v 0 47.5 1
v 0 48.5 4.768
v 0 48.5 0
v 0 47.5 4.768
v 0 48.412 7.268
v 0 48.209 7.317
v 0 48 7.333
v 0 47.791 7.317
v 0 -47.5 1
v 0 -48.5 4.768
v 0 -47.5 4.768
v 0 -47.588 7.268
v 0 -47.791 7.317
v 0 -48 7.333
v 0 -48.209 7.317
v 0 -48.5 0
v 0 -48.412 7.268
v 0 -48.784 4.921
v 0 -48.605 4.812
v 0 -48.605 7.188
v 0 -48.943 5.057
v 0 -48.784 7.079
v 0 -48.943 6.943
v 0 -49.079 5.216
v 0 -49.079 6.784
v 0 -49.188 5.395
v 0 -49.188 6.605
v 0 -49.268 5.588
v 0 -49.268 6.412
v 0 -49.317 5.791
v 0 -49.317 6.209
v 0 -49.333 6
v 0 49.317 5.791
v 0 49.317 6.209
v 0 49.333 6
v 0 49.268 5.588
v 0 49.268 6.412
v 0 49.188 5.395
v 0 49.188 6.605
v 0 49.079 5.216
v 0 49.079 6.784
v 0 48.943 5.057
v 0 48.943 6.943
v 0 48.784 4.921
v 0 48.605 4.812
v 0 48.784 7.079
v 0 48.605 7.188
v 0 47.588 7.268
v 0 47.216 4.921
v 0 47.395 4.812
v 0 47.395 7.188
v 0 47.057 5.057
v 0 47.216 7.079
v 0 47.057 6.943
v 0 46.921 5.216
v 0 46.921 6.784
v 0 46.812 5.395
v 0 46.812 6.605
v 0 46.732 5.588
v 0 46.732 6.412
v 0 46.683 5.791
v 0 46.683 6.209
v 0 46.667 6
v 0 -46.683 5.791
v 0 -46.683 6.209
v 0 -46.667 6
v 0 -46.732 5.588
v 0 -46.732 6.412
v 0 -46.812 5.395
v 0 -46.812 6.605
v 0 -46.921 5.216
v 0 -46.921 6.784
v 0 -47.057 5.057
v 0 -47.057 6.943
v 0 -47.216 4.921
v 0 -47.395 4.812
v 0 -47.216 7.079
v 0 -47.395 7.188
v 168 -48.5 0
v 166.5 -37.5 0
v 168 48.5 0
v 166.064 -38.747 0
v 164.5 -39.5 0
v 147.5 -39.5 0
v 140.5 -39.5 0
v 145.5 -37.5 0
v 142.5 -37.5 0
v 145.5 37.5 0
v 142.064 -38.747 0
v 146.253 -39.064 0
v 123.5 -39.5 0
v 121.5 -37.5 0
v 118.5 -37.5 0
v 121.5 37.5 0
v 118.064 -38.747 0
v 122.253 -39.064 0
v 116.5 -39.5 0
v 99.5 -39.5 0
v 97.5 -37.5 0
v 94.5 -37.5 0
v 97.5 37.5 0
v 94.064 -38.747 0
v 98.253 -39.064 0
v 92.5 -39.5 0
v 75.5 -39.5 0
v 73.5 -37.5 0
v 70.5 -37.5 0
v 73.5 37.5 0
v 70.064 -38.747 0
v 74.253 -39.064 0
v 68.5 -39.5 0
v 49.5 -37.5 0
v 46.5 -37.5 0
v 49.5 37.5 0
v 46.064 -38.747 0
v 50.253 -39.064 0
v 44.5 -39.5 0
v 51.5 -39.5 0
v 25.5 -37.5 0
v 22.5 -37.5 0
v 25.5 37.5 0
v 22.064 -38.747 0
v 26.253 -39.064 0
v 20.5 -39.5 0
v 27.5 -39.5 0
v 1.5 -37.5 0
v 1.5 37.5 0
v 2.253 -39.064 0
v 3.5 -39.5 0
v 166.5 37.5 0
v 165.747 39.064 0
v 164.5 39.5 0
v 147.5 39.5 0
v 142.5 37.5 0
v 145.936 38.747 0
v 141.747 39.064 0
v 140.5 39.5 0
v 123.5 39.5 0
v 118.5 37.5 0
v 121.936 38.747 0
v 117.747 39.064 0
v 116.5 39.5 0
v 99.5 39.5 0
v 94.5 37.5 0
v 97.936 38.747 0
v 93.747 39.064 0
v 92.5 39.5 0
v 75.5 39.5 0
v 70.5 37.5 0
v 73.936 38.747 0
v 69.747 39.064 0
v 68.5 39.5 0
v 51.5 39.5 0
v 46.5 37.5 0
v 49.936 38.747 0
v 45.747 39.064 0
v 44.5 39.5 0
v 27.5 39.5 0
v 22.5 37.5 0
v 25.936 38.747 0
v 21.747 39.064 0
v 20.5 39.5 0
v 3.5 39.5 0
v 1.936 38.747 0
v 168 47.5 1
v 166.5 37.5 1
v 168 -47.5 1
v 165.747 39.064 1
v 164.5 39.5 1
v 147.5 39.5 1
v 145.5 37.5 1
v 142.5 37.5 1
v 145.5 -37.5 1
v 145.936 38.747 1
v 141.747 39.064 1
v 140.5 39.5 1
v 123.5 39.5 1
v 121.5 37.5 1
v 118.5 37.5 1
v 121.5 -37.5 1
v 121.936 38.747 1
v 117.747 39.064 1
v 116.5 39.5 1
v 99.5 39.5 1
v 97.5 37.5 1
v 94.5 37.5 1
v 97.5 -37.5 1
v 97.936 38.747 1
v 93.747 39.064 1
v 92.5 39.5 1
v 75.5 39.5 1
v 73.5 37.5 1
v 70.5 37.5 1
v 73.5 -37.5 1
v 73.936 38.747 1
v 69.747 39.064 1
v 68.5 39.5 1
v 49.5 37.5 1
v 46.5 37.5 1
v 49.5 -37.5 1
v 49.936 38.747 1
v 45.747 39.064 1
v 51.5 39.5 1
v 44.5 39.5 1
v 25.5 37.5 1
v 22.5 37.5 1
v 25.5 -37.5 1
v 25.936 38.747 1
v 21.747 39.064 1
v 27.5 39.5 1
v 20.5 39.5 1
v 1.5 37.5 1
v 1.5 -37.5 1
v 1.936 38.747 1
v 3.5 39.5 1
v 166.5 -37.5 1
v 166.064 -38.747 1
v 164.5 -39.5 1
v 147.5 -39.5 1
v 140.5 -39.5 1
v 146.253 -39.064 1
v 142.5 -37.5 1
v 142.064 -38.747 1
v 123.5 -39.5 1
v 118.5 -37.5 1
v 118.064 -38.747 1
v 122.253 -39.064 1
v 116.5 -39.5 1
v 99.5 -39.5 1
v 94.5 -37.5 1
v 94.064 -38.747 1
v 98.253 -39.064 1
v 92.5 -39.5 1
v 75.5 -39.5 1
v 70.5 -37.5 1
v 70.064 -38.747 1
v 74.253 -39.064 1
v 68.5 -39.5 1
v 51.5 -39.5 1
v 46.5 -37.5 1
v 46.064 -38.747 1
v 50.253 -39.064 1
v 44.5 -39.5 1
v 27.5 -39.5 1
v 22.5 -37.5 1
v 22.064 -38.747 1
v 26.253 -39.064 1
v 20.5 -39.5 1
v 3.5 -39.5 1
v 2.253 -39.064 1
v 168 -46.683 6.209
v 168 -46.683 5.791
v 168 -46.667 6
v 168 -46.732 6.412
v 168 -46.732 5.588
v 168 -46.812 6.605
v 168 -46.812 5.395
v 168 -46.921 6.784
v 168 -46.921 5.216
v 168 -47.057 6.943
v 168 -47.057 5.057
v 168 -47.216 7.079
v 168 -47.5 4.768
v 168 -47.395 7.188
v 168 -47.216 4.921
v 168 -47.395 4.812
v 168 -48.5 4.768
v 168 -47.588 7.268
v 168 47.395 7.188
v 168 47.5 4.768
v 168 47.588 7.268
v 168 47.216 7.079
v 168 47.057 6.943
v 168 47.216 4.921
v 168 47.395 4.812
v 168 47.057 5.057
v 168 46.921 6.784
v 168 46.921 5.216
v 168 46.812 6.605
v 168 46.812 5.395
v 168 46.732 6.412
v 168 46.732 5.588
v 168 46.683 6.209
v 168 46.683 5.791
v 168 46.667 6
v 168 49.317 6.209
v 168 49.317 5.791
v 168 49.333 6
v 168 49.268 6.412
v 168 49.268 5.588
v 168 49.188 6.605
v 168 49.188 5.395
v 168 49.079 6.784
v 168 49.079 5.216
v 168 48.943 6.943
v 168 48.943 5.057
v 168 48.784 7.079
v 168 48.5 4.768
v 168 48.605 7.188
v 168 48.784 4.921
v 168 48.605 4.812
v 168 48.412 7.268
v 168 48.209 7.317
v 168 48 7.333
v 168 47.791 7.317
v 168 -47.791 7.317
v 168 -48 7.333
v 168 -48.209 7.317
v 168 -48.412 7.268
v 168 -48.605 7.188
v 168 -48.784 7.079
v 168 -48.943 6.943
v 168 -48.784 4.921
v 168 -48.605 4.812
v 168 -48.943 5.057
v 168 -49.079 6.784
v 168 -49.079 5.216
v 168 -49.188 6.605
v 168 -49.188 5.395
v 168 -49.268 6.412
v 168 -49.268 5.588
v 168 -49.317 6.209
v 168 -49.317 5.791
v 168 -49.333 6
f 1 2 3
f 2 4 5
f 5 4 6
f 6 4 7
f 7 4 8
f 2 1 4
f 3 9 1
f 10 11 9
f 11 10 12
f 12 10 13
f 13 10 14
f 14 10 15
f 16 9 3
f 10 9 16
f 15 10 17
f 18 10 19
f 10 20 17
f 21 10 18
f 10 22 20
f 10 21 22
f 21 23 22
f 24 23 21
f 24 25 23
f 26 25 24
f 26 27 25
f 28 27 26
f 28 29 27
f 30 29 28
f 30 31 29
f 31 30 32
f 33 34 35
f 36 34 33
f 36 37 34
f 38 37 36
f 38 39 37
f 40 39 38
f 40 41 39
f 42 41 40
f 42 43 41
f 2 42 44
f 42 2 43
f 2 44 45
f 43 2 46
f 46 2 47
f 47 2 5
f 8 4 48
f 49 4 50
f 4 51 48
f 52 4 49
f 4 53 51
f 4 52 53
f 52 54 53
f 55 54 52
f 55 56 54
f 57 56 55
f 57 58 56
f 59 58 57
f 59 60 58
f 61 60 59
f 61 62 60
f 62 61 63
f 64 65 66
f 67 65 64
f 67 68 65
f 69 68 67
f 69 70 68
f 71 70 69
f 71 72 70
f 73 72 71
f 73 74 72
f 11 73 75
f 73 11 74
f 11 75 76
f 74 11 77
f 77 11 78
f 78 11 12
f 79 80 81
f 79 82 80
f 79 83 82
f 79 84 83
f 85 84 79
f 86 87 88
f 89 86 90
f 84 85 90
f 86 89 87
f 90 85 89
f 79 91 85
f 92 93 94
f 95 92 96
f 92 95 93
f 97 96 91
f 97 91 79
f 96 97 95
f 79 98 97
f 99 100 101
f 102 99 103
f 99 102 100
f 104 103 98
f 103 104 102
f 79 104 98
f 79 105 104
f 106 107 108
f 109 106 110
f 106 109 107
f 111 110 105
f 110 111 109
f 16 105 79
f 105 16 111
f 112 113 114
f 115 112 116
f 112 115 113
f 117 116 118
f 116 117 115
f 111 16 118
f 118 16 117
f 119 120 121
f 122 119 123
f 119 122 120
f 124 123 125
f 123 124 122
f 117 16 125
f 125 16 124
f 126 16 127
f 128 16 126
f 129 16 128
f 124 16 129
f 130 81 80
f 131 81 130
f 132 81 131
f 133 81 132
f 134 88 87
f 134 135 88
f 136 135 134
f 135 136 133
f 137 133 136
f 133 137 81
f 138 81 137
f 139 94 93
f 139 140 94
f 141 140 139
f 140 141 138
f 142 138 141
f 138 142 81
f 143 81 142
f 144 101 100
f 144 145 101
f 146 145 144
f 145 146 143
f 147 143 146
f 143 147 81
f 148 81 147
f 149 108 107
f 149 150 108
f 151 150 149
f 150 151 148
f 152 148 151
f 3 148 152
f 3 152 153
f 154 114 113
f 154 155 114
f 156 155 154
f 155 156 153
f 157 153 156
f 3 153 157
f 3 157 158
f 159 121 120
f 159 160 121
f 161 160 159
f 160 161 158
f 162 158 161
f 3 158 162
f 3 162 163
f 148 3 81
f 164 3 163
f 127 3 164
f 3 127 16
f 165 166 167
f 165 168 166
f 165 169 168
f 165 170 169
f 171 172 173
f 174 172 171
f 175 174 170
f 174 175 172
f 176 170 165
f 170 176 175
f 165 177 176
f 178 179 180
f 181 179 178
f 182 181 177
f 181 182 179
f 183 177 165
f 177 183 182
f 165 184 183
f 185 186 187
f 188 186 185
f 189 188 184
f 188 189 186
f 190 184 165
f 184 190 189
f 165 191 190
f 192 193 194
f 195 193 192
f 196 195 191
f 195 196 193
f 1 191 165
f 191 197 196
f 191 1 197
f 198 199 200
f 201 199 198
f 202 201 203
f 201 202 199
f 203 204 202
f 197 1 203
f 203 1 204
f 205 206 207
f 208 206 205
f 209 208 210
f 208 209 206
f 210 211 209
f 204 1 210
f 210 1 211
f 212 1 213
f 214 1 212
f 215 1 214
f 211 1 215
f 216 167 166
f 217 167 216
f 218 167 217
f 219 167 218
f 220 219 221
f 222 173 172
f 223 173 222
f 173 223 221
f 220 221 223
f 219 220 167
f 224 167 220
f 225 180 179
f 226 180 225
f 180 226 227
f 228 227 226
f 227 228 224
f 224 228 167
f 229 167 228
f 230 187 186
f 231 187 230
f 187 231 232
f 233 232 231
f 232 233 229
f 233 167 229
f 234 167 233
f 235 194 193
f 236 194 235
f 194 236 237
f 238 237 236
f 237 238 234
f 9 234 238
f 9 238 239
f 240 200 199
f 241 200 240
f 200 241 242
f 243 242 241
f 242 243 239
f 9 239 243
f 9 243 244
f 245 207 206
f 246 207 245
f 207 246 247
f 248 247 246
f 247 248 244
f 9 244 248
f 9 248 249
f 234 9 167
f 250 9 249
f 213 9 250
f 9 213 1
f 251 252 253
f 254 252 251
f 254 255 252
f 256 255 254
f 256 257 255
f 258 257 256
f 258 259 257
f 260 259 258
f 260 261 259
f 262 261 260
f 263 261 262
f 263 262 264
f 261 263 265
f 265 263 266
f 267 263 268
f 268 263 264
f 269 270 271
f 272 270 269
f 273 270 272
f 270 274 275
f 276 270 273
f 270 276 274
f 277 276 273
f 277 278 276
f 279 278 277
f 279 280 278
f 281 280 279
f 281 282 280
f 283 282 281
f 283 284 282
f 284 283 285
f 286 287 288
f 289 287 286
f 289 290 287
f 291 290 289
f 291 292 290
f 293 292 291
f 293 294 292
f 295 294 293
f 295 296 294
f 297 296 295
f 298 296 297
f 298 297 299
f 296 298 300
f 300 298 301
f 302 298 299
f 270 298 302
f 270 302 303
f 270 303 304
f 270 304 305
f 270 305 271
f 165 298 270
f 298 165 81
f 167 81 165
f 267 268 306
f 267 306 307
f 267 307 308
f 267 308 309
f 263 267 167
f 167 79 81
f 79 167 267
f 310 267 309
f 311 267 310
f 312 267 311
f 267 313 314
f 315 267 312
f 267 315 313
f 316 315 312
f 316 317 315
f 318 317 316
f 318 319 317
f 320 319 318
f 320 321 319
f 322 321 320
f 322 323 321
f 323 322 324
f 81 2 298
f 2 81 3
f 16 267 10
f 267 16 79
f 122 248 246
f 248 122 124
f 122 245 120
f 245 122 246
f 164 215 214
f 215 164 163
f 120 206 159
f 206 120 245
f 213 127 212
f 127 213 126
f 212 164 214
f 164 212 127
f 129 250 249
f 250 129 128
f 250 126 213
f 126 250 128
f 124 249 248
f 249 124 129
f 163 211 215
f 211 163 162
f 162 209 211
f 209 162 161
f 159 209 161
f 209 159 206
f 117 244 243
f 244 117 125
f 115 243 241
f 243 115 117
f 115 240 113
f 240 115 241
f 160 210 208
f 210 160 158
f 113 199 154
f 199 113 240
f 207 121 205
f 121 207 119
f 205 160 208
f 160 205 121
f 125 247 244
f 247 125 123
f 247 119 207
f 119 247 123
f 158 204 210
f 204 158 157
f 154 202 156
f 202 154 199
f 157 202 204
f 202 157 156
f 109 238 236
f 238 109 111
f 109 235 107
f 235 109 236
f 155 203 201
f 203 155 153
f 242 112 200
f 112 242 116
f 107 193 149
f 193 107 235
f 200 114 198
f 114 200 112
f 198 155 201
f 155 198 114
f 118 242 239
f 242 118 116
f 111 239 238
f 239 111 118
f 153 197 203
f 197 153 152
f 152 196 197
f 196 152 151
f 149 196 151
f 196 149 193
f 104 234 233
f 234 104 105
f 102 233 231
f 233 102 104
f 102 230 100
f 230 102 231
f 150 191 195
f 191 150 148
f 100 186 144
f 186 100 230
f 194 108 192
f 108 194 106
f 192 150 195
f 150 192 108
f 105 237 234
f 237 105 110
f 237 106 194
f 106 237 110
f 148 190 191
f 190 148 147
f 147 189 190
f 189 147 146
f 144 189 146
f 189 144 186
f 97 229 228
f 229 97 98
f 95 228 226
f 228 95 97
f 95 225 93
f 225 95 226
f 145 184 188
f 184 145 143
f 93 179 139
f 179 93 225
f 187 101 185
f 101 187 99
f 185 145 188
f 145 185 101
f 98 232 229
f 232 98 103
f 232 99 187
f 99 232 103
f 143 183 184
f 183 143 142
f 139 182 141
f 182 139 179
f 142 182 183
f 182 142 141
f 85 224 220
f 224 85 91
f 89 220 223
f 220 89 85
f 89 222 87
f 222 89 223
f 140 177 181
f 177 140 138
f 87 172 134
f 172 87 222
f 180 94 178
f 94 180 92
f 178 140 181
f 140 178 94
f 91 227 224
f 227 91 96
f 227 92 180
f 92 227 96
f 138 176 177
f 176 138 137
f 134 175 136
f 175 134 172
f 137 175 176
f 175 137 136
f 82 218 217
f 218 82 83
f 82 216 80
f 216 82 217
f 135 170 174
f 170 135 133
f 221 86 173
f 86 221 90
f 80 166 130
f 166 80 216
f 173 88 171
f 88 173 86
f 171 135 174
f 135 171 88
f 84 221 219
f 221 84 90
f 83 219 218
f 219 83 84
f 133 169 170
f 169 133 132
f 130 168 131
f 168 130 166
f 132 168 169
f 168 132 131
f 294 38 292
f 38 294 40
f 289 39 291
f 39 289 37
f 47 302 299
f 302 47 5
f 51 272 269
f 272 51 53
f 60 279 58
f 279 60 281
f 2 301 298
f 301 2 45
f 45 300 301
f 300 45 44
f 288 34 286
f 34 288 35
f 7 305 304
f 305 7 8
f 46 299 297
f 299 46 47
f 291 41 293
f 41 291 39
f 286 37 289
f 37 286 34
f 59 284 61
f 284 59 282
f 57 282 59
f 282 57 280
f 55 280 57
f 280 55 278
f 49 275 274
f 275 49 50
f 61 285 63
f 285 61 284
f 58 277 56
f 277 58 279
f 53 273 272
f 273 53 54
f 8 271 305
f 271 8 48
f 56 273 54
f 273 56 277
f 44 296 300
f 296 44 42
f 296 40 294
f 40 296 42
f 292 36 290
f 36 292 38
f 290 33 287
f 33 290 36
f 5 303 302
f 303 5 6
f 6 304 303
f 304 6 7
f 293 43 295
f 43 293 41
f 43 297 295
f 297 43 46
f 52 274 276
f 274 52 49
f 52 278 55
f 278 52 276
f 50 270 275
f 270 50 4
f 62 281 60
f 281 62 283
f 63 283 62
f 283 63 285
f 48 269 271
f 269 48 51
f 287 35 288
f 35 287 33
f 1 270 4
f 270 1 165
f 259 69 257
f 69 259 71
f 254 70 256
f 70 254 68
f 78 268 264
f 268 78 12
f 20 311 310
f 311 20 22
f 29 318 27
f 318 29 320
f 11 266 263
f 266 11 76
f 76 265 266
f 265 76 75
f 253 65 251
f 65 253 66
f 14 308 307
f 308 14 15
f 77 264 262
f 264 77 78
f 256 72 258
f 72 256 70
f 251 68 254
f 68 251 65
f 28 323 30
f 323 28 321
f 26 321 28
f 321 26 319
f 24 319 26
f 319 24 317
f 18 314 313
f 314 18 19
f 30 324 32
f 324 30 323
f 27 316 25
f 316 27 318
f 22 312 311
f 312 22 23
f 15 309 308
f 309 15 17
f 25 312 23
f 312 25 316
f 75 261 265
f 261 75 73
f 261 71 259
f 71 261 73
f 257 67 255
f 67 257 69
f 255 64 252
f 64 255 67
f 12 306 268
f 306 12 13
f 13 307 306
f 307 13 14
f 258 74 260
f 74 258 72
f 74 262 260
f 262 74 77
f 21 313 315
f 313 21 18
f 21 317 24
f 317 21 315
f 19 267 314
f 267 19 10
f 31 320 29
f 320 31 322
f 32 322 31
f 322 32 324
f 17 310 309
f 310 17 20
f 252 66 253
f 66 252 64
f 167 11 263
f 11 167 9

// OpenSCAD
// Silicon Square Ice Tray Holder
// This helps stiffen up a silicon ice tray, so it can be placed into the fridge more easily.
// Author: Brian Khuu (2018)
tol = 2; //mm

/* Tray Holder Spec */
tray_holder_thickness = 1;// Thickness of this object
tray_holder_cell_count = 7; // Number of cells to hold up

/* Silicon Tray Spec */
gap_l = 10; // Gap Above Each Cell (mm)
gap_w = 7;  // Gap Between Cells (mm)
ice_w = 17; // Ice Cell Width (mm)
ice_l = 75; // Ice Cell Length (mm)
ice_h = 20; // Ice Cell Height (mm)
silicon_thickness= 3; // Silicon Thickness (mm)

/* Reference Model Enable/Disable */
enable_reference_model = false;
if(enable_reference_model)
translate([0,0,silicon_thickness])
union()
{
  // Ice Hole
  for(i = [0:1:3])
    %translate([i*(ice_w+gap_w),0,-ice_h/2])  cube([ice_w, ice_l, ice_h], center=true);

  // Gap Check
  for(i = [-1:1:3])
    %translate([i*(ice_w+gap_w) + (ice_w+gap_w)/2,0,silicon_thickness/2]) color([0.5,0.5,1]) cube([gap_w, ice_l,silicon_thickness], center=true);
  
  // Side
  %translate([30,ice_l/2+gap_l/2,silicon_thickness/2]) color([0.5,0.5,1]) cube([100, gap_l, silicon_thickness], center=true);
  %translate([30,-(ice_l/2+gap_l/2),silicon_thickness/2]) color([0.5,0.5,1]) cube([100, gap_l, silicon_thickness], center=true);
}

module ice_holder_shape(i)
{ 
  translate([i*(ice_w+gap_w)+(ice_w+gap_w)/2,0,0])
  linear_extrude(height = tray_holder_thickness)
    offset(delta=gap_w/2)
      square([ice_w, ice_l], center=true);
}

module ice_holder_hole(i)
{ 
  translate([i*(ice_w+gap_w)+(ice_w+gap_w)/2,0,-1])
  linear_extrude(height = tray_holder_thickness+2)
    offset(tol)
      square([ice_w, ice_l], center=true);
}

module ice_holder(count)
{
  union()
  {
    // Holder
    difference()
    {
      union()
      {
        // Body
        for ( i = [0:1:count-1] )
          ice_holder_shape(i);
        
        // Side
        translate([count*(ice_w+gap_w)/2, ice_l/2+gap_l/2, tray_holder_thickness/2]) 
          cube([count*(ice_w+gap_w), gap_l+tray_holder_thickness*2, tray_holder_thickness], center=true);
        translate([count*(ice_w+gap_w)/2, -(ice_l/2+gap_l/2), tray_holder_thickness/2]) 
          cube([count*(ice_w+gap_w), gap_l+tray_holder_thickness*2, tray_holder_thickness], center=true);
      }
      for ( i = [0:1:count] )
        ice_holder_hole(i);
    }
    
    // Handle
    translate([0,(ice_l)/2+gap_l,0])
      union()
      {
        translate([0,tray_holder_thickness/2,2*silicon_thickness], $fn=40)
          rotate([0,90,0])
            cylinder(count*(ice_w+gap_w),r=tray_holder_thickness*4/3);
        cube([count*(ice_w+gap_w),tray_holder_thickness,2*silicon_thickness]);
      }
    translate([0,-((ice_l)/2+gap_l)-tray_holder_thickness,0])
      union()
      {
        translate([0,tray_holder_thickness/2,2*silicon_thickness], $fn=40)
          rotate([0,90,0])
            cylinder(count*(ice_w+gap_w),r=tray_holder_thickness*4/3);
        cube([count*(ice_w+gap_w),tray_holder_thickness,2*silicon_thickness]);
      }
  }
}

ice_holder(tray_holder_cell_count);
